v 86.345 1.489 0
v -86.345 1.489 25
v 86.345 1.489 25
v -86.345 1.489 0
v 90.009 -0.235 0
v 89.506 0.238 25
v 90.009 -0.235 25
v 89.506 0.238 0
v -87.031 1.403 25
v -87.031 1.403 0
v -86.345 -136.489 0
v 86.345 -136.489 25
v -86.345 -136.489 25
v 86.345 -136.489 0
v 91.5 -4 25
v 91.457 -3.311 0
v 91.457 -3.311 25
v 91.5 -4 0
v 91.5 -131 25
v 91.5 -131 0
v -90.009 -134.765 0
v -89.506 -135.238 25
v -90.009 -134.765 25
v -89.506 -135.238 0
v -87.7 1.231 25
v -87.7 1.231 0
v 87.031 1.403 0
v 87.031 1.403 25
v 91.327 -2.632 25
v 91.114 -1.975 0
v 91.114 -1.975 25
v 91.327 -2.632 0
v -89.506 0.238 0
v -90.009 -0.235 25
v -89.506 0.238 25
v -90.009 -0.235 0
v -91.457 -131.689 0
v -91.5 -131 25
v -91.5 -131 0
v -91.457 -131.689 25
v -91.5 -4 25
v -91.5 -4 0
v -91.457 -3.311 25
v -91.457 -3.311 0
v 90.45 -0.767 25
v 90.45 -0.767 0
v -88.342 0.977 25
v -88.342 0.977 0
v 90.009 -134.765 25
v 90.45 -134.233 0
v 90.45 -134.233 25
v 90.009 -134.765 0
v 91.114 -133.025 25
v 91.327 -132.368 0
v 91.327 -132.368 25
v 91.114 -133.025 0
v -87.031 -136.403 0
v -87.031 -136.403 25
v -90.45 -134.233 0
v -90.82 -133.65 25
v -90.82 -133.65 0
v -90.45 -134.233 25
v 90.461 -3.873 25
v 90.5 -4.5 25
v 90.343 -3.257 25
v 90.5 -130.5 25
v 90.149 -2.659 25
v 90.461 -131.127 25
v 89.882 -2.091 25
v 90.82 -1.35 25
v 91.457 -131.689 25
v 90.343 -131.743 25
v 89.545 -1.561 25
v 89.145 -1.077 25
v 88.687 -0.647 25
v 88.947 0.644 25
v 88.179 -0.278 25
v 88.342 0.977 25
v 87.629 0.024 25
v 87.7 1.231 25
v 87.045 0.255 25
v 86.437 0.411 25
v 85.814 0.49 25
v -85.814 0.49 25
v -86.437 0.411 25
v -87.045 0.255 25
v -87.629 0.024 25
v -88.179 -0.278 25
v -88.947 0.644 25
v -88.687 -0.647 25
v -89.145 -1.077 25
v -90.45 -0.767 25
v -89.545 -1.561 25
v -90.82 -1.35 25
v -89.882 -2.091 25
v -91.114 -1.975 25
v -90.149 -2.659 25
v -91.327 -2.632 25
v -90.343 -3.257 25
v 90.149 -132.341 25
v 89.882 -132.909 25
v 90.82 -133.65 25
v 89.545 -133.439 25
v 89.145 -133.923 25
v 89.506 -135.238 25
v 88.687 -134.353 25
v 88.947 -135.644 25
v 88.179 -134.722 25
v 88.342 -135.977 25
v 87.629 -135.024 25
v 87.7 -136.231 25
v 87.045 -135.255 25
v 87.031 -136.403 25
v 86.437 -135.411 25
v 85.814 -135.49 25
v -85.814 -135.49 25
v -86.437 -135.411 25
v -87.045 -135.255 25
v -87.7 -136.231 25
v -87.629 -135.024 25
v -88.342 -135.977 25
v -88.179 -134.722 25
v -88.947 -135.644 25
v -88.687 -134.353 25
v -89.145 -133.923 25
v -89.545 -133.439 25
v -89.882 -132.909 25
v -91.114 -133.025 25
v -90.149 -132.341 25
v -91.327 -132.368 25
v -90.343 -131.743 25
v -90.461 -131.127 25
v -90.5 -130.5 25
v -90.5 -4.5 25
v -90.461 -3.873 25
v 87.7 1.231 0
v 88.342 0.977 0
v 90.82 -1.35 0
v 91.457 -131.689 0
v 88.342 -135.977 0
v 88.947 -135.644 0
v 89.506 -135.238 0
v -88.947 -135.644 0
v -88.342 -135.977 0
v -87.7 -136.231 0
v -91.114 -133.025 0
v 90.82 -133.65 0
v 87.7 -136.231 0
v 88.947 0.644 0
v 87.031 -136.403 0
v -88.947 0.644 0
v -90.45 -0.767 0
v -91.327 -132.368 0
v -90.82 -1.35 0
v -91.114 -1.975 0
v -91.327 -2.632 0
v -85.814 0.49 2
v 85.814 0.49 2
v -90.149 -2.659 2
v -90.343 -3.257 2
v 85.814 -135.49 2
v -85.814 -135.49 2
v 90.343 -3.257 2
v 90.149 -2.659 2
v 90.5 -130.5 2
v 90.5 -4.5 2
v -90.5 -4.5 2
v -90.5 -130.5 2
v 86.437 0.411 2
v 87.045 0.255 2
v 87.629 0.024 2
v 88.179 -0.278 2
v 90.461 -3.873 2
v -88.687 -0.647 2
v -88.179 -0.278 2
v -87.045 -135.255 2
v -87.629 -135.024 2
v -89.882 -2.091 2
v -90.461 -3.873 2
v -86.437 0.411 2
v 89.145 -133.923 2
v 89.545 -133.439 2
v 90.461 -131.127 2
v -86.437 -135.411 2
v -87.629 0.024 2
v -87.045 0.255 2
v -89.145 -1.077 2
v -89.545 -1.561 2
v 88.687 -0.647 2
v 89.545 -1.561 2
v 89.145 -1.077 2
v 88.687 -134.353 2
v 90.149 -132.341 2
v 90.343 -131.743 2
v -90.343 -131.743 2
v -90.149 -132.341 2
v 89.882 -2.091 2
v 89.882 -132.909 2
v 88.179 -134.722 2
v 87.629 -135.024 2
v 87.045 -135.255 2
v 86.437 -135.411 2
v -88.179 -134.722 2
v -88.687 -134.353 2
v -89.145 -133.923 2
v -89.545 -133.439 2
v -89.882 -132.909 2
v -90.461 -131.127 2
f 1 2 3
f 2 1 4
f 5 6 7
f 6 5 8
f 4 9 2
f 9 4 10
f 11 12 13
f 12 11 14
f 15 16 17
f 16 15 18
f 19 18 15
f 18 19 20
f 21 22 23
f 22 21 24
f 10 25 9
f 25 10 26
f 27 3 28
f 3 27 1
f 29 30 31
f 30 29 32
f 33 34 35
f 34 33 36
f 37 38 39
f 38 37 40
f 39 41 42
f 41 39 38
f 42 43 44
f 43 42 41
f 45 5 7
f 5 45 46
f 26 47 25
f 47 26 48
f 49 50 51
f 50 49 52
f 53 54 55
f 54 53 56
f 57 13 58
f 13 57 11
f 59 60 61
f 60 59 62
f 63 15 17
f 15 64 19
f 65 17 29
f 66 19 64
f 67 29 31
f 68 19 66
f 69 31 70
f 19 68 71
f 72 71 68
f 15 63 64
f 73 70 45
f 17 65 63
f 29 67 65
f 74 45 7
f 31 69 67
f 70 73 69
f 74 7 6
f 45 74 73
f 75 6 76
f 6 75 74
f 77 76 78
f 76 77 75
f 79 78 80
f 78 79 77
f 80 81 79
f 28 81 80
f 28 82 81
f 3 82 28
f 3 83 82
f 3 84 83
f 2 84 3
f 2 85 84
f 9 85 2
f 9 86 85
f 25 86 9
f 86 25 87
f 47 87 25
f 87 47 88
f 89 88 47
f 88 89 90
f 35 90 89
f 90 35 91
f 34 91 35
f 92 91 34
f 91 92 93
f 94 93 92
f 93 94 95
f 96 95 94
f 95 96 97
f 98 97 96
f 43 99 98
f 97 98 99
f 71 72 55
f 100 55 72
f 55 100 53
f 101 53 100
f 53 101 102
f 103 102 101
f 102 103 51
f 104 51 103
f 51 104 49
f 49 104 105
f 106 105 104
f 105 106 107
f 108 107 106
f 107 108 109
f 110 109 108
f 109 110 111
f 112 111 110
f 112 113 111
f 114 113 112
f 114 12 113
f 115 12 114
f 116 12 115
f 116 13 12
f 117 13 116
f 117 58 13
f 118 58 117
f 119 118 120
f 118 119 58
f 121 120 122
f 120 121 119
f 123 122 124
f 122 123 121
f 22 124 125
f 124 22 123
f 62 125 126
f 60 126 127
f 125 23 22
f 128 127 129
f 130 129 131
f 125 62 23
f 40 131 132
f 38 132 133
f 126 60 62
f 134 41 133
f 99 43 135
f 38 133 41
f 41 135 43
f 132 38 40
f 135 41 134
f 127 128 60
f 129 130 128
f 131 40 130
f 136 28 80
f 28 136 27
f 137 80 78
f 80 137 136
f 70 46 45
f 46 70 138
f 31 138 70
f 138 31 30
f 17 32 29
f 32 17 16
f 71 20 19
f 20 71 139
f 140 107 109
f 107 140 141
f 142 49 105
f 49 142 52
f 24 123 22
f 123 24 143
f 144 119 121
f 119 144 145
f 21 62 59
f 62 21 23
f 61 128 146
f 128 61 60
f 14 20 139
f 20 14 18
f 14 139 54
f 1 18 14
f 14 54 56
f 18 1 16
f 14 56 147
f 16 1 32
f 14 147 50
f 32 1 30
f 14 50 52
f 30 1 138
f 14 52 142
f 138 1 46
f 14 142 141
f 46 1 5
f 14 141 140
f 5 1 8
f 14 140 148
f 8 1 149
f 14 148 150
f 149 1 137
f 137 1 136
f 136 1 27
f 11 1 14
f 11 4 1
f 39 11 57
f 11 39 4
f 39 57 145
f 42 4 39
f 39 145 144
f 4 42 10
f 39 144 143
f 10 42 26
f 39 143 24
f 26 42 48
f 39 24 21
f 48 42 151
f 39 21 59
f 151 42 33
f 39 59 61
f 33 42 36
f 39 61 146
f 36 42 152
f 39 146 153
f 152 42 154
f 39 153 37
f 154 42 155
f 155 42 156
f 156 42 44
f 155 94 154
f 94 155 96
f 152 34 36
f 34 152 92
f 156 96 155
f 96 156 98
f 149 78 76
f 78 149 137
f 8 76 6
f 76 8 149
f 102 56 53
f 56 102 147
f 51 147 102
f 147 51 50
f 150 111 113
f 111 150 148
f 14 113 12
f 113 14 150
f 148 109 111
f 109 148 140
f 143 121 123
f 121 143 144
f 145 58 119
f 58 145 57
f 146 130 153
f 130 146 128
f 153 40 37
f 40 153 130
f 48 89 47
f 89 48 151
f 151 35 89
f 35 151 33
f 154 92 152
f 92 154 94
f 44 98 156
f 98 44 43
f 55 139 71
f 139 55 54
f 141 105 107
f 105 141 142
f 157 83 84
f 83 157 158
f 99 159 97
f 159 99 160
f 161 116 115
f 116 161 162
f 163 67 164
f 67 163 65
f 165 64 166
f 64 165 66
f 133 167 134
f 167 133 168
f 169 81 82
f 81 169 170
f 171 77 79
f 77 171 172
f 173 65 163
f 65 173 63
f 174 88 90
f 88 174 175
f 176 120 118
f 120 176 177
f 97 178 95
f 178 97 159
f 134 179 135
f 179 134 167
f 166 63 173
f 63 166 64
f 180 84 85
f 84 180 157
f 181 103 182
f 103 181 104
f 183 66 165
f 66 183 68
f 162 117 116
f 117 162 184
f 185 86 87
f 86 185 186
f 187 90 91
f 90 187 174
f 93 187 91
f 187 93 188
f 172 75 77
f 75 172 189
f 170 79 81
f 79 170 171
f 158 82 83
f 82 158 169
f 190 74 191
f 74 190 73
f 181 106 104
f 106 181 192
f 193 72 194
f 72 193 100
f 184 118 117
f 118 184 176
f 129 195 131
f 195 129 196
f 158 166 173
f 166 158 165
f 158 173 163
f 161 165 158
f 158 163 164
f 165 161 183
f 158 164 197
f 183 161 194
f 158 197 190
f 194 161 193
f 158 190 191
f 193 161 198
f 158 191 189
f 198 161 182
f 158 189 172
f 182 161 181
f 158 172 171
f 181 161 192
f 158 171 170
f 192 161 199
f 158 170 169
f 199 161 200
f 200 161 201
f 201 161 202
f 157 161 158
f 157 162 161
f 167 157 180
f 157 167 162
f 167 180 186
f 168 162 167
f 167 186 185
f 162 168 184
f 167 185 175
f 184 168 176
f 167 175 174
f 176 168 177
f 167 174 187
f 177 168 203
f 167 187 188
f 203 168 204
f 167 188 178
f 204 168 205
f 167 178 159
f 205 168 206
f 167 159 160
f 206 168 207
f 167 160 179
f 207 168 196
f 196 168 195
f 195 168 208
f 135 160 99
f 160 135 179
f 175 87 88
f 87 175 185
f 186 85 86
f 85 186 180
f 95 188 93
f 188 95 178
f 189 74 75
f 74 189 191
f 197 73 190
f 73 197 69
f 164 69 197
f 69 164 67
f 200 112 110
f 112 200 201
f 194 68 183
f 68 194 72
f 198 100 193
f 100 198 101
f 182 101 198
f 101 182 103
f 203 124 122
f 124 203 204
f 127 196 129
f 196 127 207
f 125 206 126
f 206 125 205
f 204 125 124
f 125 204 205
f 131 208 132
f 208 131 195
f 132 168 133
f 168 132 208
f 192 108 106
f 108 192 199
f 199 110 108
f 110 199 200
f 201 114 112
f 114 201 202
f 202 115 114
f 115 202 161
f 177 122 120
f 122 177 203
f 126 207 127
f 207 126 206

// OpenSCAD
$fn = 50;


difference() {
	union() {
		translate(v = [0, -67.5000000000, 0]) {
			hull() {
				translate(v = [-86.0000000000, 63.5000000000, 0]) {
					cylinder(h = 25, r = 5.5000000000);
				}
				translate(v = [86.0000000000, 63.5000000000, 0]) {
					cylinder(h = 25, r = 5.5000000000);
				}
				translate(v = [-86.0000000000, -63.5000000000, 0]) {
					cylinder(h = 25, r = 5.5000000000);
				}
				translate(v = [86.0000000000, -63.5000000000, 0]) {
					cylinder(h = 25, r = 5.5000000000);
				}
			}
		}
	}
	union() {
		translate(v = [0, -67.5000000000, 2]) {
			hull() {
				translate(v = [-85.5000000000, 63.0000000000, 0]) {
					cylinder(h = 50, r = 5);
				}
				translate(v = [85.5000000000, 63.0000000000, 0]) {
					cylinder(h = 50, r = 5);
				}
				translate(v = [-85.5000000000, -63.0000000000, 0]) {
					cylinder(h = 50, r = 5);
				}
				translate(v = [85.5000000000, -63.0000000000, 0]) {
					cylinder(h = 50, r = 5);
				}
			}
		}
	}
}
